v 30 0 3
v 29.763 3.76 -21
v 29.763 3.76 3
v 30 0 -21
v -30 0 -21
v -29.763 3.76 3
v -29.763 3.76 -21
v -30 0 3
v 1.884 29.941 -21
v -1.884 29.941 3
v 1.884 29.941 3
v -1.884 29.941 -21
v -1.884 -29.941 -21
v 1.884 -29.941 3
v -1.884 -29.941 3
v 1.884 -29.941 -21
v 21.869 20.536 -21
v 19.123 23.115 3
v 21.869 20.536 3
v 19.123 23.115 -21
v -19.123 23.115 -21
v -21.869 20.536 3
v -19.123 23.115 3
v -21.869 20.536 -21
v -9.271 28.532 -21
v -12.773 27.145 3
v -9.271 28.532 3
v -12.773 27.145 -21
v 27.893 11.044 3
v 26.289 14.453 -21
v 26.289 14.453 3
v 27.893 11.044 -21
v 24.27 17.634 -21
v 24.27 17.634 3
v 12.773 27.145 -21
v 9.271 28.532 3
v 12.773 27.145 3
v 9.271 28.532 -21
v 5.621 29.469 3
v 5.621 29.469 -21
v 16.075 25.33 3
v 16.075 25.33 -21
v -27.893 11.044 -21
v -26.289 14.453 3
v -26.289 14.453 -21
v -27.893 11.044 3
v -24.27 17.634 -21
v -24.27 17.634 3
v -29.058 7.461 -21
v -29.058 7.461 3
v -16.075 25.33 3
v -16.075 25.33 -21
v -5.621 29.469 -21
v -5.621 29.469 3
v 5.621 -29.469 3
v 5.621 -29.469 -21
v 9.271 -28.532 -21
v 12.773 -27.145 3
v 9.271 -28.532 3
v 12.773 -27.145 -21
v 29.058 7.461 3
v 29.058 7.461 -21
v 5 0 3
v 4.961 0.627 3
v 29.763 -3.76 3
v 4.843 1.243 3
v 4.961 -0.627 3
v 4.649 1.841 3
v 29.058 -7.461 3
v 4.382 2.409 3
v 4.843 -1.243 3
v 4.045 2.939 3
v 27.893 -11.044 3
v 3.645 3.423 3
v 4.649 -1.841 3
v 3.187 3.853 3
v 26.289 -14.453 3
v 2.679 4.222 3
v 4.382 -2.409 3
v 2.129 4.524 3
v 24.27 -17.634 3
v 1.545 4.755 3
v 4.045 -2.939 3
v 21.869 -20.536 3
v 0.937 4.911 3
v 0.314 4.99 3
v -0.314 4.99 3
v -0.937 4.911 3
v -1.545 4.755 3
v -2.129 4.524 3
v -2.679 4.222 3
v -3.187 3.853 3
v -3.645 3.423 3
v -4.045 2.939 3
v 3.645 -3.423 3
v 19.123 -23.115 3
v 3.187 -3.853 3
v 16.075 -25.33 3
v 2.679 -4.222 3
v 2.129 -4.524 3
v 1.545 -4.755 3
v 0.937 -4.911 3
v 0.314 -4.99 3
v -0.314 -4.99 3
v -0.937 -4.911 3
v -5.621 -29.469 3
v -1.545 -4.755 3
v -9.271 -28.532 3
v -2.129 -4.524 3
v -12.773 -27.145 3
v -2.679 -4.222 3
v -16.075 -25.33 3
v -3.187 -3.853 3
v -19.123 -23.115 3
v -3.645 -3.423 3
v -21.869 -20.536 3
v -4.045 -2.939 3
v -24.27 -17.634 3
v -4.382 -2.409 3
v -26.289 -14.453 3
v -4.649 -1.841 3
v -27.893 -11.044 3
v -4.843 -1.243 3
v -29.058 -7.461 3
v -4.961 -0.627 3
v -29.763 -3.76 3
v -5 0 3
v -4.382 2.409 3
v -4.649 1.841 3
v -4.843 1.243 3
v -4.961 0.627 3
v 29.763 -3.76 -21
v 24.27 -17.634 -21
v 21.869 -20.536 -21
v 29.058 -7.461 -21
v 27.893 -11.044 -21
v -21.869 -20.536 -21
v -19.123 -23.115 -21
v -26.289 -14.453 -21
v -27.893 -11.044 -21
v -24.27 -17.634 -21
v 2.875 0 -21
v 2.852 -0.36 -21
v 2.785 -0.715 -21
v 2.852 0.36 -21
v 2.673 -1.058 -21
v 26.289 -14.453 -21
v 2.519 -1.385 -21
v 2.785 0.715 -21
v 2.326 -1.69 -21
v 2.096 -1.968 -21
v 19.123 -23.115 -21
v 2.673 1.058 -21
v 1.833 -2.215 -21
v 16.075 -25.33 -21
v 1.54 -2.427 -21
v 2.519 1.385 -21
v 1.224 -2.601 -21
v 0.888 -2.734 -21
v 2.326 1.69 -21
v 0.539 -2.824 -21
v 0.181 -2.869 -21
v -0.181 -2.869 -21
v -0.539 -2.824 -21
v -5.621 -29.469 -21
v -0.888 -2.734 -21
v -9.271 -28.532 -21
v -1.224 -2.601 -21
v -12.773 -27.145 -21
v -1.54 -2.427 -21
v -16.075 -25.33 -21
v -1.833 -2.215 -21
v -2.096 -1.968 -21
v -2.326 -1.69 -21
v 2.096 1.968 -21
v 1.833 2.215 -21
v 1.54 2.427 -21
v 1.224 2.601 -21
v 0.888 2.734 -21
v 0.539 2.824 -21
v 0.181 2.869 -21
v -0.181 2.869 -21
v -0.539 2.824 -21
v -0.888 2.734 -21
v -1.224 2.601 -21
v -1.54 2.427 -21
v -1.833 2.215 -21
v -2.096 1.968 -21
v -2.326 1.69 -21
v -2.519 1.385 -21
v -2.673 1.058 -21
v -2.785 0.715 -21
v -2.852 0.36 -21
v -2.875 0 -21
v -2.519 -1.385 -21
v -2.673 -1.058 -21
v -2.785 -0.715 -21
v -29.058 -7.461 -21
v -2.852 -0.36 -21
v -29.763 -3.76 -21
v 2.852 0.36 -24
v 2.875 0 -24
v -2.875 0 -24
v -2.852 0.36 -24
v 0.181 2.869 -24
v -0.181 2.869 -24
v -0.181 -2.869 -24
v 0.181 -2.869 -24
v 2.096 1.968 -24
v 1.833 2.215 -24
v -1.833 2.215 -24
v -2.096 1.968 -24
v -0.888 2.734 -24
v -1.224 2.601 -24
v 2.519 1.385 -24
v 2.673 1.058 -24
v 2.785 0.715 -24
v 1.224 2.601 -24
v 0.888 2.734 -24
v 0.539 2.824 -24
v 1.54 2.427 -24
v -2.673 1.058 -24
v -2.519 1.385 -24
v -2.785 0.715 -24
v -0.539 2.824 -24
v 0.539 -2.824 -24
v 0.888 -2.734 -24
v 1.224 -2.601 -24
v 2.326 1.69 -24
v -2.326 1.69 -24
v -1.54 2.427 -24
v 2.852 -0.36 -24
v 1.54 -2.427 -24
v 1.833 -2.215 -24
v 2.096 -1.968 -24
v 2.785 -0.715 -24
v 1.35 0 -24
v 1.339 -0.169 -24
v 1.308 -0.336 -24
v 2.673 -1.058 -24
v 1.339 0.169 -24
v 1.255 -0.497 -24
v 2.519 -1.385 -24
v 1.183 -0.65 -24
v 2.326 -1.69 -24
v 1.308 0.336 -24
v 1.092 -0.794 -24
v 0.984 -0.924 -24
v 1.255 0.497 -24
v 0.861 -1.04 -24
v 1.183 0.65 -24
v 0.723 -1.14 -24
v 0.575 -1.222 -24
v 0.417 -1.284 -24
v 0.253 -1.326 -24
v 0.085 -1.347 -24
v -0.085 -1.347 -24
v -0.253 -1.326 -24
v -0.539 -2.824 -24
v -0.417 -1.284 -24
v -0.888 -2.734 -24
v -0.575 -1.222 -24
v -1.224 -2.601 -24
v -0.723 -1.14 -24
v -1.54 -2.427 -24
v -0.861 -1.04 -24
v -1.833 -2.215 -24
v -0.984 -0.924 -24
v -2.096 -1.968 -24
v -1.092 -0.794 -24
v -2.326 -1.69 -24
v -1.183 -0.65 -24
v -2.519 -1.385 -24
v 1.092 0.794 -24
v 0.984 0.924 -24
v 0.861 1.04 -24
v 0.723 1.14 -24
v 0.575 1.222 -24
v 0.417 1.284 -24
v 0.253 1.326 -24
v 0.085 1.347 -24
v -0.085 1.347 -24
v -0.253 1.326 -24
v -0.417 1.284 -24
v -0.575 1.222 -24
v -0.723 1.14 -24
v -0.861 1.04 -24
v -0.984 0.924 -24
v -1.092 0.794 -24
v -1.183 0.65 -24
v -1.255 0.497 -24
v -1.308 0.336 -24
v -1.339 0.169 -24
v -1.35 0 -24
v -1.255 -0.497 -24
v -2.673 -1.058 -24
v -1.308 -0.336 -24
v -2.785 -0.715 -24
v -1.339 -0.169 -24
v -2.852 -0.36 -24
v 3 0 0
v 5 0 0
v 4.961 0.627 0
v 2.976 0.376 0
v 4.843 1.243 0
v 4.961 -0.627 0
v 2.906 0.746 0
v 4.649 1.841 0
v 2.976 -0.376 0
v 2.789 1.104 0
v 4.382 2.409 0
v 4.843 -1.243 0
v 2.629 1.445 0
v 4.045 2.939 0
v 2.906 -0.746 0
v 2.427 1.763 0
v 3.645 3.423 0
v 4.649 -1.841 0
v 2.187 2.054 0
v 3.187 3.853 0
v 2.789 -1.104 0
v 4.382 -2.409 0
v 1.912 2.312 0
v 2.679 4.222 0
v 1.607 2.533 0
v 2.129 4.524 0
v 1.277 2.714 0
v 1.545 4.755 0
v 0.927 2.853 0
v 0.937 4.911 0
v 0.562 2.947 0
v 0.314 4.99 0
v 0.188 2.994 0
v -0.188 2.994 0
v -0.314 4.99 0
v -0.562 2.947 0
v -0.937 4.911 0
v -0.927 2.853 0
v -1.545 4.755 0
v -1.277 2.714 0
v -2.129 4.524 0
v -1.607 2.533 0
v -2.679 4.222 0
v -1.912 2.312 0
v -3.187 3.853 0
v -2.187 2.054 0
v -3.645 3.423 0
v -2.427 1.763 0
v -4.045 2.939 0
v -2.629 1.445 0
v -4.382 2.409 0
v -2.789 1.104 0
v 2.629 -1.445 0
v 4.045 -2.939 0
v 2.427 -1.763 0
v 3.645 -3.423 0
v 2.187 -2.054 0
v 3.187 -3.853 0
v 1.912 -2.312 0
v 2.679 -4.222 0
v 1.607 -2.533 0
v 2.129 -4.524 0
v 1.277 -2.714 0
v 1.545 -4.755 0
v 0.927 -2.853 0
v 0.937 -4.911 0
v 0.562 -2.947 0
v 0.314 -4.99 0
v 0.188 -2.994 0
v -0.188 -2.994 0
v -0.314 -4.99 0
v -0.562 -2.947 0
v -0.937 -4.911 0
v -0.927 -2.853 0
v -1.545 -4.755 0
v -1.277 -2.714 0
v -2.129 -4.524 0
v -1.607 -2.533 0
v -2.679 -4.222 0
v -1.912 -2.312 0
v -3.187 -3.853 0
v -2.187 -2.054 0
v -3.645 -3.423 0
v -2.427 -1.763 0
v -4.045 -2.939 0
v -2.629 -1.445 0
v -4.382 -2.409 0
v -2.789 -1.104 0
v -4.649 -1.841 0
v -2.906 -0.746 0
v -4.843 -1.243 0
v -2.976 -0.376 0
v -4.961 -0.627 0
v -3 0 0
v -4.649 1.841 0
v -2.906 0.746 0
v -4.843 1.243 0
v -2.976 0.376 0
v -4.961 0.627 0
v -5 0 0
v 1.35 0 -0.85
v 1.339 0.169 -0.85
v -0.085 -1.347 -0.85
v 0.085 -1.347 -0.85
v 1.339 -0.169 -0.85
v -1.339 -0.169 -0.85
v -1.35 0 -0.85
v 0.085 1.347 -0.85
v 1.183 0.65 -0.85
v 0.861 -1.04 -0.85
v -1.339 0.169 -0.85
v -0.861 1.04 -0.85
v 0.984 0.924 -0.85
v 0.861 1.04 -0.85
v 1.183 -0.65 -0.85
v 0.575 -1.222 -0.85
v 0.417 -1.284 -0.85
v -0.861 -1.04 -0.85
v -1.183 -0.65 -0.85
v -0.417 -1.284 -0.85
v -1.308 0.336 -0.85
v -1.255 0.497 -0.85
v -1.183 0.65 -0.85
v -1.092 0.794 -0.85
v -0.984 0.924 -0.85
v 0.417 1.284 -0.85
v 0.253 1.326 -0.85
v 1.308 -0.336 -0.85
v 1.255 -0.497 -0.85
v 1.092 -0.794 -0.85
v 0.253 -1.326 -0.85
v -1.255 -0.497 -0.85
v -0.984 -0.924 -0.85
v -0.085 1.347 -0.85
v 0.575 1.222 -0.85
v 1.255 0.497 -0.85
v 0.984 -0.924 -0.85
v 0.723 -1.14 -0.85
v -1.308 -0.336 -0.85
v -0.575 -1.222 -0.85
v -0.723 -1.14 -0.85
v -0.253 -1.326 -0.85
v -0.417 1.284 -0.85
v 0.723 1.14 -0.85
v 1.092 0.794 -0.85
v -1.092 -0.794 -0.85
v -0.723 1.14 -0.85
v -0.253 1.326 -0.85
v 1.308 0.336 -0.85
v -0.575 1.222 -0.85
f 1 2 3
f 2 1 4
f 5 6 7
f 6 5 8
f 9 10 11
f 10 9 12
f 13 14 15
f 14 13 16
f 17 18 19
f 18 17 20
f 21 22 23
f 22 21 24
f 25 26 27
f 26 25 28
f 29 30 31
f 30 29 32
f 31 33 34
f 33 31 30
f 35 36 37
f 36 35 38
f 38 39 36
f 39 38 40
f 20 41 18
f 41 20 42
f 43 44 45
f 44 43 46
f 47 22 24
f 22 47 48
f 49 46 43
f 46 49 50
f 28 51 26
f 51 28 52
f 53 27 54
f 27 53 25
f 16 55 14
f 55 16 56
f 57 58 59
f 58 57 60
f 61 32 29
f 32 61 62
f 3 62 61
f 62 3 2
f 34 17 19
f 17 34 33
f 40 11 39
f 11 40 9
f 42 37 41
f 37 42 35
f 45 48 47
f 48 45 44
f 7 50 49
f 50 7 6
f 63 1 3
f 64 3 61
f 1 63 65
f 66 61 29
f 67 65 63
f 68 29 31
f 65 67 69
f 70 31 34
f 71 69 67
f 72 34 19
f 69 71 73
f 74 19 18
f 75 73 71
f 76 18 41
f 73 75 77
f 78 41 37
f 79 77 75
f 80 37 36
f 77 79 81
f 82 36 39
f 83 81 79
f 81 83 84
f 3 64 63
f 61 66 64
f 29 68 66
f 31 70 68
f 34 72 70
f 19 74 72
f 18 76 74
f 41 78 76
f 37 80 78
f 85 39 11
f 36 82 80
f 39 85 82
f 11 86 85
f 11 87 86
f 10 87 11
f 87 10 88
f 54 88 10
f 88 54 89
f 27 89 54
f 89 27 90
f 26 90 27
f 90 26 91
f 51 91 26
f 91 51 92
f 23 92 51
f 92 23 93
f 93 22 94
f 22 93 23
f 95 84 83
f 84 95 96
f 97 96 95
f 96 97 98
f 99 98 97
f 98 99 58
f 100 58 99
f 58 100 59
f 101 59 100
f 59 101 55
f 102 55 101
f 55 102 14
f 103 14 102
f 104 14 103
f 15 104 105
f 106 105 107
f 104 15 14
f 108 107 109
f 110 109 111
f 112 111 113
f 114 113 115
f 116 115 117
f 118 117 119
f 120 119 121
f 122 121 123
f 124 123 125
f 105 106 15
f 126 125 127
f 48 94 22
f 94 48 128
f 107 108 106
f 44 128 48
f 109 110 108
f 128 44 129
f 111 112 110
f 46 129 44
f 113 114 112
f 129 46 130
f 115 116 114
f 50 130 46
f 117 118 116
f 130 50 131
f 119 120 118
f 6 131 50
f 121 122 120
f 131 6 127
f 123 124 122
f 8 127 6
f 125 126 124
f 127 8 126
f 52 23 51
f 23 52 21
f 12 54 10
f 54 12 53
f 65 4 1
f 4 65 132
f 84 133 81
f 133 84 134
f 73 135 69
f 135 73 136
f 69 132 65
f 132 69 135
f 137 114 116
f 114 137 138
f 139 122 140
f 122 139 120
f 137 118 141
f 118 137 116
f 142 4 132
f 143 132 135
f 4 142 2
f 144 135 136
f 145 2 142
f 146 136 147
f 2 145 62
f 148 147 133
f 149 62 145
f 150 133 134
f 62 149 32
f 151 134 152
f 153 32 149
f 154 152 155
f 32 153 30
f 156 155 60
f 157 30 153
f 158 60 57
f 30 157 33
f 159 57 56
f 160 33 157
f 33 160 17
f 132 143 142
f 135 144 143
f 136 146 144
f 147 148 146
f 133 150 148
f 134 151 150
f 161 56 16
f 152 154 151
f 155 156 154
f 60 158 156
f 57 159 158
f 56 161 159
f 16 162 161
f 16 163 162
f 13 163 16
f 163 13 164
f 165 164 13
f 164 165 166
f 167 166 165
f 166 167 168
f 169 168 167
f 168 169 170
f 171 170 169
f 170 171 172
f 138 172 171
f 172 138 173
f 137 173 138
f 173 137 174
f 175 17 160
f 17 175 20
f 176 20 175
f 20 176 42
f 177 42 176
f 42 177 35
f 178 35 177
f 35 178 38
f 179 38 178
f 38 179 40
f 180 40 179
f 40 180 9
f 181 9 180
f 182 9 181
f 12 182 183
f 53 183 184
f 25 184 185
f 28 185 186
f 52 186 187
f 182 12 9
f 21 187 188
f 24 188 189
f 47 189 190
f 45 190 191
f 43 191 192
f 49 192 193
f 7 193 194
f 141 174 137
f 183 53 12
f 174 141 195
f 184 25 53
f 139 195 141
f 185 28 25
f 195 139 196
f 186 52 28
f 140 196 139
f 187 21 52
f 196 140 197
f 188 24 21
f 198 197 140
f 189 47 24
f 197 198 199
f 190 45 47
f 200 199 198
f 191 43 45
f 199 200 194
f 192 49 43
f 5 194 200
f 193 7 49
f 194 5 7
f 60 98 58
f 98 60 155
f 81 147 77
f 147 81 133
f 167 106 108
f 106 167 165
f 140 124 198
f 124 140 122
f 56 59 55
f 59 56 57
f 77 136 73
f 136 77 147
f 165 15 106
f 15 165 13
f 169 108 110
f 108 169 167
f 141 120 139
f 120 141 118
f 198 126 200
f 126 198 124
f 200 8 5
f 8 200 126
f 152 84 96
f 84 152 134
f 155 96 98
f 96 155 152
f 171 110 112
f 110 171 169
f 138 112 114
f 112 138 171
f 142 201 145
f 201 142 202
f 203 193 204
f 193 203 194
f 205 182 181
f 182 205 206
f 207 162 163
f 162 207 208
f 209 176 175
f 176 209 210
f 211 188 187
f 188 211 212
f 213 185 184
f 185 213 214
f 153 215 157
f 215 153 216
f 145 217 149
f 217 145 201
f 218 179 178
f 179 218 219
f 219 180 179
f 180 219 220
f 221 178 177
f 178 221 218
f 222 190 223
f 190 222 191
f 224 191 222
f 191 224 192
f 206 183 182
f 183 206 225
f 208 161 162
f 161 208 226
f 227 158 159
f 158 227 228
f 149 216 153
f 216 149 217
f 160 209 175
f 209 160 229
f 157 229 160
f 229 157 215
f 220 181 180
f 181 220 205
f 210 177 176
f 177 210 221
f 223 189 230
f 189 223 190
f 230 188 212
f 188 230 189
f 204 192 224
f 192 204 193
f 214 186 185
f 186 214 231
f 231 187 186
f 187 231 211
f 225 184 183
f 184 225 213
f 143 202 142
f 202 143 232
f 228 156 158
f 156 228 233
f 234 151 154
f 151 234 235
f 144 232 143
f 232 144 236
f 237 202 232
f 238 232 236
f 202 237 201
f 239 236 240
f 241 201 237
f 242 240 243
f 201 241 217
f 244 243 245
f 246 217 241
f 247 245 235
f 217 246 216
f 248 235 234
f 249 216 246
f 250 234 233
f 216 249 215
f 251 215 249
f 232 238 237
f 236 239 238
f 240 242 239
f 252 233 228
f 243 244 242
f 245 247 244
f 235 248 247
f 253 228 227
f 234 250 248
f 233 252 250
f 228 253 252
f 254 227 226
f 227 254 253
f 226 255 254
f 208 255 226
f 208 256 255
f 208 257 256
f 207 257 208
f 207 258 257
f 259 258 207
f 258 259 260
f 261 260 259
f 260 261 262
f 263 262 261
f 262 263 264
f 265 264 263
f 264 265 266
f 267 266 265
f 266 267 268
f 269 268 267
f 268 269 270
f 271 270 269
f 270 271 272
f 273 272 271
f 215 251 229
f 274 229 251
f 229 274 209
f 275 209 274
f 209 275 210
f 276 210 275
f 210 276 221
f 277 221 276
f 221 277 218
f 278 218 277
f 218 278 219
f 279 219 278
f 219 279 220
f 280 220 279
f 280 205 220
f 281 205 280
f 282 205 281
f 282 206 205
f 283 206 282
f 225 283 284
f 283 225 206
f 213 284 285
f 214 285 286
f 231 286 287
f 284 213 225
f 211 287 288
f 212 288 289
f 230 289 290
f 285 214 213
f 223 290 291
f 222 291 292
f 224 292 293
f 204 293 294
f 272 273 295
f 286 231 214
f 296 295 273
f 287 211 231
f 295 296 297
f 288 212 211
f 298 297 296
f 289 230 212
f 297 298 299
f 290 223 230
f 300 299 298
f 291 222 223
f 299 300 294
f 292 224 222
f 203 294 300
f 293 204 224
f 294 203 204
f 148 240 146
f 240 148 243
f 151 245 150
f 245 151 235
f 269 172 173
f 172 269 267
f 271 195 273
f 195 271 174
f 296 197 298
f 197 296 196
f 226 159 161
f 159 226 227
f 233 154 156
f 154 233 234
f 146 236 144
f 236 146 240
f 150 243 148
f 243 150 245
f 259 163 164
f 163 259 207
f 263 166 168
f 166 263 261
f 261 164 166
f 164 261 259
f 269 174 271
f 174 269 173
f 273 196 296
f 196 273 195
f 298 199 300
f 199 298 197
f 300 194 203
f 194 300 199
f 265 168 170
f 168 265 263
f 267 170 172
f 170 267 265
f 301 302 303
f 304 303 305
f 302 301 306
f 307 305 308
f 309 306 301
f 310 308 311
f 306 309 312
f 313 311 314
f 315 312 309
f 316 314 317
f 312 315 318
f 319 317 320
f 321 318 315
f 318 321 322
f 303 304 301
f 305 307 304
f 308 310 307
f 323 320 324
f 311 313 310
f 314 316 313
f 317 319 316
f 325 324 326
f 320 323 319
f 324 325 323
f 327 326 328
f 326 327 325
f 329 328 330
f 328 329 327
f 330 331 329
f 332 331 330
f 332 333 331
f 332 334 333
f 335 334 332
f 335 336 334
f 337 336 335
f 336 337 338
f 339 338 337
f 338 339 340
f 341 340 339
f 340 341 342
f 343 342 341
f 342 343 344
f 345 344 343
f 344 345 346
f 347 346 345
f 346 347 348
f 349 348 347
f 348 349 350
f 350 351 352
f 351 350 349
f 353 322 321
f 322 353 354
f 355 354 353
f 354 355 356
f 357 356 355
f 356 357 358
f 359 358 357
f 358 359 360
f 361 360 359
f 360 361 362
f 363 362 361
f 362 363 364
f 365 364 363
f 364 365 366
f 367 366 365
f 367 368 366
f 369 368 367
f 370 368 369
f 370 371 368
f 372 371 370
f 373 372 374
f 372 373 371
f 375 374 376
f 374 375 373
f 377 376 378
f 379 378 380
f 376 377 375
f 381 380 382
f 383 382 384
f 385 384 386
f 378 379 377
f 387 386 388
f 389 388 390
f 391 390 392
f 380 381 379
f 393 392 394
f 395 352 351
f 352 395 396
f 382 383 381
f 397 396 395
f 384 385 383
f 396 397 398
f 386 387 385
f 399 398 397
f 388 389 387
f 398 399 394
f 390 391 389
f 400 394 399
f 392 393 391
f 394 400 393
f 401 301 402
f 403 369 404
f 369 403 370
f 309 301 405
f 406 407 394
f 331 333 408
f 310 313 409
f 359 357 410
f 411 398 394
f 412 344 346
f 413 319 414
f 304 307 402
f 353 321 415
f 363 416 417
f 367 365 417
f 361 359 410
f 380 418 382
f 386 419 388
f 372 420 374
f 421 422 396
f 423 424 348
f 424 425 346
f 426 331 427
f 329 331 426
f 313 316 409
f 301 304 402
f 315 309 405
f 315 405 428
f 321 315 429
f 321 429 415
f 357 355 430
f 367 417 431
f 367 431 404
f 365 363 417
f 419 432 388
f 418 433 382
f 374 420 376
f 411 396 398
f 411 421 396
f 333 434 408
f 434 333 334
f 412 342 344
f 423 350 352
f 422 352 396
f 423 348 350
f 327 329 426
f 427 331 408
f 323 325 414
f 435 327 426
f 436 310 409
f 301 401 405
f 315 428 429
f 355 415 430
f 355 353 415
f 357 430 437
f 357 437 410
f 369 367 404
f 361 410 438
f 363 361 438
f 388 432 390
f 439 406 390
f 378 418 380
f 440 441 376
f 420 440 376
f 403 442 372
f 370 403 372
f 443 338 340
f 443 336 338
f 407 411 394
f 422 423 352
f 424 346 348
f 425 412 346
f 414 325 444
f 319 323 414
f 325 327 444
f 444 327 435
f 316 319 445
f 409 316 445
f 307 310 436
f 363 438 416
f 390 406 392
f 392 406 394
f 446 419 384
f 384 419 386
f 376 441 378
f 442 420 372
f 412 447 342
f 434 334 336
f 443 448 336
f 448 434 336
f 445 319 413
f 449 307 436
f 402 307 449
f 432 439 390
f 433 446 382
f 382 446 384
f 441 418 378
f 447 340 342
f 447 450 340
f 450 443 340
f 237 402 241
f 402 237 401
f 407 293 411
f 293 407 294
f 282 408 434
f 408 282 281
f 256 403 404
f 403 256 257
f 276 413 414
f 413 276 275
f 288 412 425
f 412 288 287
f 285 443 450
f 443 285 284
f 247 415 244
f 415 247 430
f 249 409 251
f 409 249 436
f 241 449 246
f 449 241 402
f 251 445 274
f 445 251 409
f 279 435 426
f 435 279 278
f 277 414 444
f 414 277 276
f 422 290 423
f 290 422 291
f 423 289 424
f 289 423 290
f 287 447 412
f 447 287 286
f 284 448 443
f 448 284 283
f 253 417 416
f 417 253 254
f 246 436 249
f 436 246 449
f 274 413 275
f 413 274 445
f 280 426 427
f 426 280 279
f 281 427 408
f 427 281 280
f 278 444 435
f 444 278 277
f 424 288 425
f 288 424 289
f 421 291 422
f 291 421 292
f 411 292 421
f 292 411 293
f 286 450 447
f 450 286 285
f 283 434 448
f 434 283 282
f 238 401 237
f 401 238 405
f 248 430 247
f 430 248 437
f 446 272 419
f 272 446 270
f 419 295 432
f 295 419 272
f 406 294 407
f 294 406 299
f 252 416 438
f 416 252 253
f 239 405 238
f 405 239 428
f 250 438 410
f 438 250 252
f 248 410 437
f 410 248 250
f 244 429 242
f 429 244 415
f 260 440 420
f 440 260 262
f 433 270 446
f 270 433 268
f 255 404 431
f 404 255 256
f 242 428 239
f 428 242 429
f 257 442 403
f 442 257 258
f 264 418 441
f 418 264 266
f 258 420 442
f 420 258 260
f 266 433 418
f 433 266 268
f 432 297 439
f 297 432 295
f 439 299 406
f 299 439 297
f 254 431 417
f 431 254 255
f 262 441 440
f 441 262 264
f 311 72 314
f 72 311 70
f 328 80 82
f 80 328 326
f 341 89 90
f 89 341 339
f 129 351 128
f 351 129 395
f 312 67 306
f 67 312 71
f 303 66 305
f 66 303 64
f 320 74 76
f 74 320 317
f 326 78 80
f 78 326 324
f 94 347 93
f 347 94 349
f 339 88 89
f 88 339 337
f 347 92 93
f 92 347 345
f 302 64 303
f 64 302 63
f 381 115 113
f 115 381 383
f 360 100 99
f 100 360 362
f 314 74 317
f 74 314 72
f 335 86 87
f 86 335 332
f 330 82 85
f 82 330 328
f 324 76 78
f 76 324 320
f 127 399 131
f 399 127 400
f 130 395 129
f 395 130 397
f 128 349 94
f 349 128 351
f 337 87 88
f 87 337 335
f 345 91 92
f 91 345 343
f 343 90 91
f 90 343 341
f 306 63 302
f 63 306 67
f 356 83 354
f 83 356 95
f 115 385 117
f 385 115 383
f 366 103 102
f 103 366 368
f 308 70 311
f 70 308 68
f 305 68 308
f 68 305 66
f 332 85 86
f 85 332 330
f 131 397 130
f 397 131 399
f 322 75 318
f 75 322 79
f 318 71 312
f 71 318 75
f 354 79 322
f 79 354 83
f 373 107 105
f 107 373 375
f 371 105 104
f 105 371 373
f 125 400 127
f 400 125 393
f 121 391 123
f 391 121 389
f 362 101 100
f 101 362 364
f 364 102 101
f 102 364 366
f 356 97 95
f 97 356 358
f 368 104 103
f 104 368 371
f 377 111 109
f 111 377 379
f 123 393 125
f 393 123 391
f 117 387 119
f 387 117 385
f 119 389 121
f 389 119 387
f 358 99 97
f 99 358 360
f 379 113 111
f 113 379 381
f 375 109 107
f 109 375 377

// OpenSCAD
$fn = 50;

difference() {
	union() {
		translate(v = [0, 0, -21.0]) {
			cylinder(h = 24, r = 30.0);
		}
		#translate(v = [0, 0, -24.0]) {
			cylinder(h = 24, r = 2.875);
		}
	}
	union() {
		translate(v = [0, 0, 0]) {
			rotate(a = [0, 0, 0]) {
				difference() {
					union() {
						translate(v = [0, 0, -24.0]) {
							cylinder(h = 24, r = 1.0);
						}
						translate(v = [0, 0, -0.85]) {
							cylinder(h = 0.85, r1 = 1.35, r2 = 3.0);
						}
						translate(v = [0, 0, -24.0]) {
							cylinder(h = 24, r = 1.35);
						}
						translate(v = [0, 0, -24.0]) {
							cylinder(h = 24, r = 1.0);
						}
					}
					union();
				}
			}
		}
		#cylinder(h = 3, r = 5.0);
	}
}
